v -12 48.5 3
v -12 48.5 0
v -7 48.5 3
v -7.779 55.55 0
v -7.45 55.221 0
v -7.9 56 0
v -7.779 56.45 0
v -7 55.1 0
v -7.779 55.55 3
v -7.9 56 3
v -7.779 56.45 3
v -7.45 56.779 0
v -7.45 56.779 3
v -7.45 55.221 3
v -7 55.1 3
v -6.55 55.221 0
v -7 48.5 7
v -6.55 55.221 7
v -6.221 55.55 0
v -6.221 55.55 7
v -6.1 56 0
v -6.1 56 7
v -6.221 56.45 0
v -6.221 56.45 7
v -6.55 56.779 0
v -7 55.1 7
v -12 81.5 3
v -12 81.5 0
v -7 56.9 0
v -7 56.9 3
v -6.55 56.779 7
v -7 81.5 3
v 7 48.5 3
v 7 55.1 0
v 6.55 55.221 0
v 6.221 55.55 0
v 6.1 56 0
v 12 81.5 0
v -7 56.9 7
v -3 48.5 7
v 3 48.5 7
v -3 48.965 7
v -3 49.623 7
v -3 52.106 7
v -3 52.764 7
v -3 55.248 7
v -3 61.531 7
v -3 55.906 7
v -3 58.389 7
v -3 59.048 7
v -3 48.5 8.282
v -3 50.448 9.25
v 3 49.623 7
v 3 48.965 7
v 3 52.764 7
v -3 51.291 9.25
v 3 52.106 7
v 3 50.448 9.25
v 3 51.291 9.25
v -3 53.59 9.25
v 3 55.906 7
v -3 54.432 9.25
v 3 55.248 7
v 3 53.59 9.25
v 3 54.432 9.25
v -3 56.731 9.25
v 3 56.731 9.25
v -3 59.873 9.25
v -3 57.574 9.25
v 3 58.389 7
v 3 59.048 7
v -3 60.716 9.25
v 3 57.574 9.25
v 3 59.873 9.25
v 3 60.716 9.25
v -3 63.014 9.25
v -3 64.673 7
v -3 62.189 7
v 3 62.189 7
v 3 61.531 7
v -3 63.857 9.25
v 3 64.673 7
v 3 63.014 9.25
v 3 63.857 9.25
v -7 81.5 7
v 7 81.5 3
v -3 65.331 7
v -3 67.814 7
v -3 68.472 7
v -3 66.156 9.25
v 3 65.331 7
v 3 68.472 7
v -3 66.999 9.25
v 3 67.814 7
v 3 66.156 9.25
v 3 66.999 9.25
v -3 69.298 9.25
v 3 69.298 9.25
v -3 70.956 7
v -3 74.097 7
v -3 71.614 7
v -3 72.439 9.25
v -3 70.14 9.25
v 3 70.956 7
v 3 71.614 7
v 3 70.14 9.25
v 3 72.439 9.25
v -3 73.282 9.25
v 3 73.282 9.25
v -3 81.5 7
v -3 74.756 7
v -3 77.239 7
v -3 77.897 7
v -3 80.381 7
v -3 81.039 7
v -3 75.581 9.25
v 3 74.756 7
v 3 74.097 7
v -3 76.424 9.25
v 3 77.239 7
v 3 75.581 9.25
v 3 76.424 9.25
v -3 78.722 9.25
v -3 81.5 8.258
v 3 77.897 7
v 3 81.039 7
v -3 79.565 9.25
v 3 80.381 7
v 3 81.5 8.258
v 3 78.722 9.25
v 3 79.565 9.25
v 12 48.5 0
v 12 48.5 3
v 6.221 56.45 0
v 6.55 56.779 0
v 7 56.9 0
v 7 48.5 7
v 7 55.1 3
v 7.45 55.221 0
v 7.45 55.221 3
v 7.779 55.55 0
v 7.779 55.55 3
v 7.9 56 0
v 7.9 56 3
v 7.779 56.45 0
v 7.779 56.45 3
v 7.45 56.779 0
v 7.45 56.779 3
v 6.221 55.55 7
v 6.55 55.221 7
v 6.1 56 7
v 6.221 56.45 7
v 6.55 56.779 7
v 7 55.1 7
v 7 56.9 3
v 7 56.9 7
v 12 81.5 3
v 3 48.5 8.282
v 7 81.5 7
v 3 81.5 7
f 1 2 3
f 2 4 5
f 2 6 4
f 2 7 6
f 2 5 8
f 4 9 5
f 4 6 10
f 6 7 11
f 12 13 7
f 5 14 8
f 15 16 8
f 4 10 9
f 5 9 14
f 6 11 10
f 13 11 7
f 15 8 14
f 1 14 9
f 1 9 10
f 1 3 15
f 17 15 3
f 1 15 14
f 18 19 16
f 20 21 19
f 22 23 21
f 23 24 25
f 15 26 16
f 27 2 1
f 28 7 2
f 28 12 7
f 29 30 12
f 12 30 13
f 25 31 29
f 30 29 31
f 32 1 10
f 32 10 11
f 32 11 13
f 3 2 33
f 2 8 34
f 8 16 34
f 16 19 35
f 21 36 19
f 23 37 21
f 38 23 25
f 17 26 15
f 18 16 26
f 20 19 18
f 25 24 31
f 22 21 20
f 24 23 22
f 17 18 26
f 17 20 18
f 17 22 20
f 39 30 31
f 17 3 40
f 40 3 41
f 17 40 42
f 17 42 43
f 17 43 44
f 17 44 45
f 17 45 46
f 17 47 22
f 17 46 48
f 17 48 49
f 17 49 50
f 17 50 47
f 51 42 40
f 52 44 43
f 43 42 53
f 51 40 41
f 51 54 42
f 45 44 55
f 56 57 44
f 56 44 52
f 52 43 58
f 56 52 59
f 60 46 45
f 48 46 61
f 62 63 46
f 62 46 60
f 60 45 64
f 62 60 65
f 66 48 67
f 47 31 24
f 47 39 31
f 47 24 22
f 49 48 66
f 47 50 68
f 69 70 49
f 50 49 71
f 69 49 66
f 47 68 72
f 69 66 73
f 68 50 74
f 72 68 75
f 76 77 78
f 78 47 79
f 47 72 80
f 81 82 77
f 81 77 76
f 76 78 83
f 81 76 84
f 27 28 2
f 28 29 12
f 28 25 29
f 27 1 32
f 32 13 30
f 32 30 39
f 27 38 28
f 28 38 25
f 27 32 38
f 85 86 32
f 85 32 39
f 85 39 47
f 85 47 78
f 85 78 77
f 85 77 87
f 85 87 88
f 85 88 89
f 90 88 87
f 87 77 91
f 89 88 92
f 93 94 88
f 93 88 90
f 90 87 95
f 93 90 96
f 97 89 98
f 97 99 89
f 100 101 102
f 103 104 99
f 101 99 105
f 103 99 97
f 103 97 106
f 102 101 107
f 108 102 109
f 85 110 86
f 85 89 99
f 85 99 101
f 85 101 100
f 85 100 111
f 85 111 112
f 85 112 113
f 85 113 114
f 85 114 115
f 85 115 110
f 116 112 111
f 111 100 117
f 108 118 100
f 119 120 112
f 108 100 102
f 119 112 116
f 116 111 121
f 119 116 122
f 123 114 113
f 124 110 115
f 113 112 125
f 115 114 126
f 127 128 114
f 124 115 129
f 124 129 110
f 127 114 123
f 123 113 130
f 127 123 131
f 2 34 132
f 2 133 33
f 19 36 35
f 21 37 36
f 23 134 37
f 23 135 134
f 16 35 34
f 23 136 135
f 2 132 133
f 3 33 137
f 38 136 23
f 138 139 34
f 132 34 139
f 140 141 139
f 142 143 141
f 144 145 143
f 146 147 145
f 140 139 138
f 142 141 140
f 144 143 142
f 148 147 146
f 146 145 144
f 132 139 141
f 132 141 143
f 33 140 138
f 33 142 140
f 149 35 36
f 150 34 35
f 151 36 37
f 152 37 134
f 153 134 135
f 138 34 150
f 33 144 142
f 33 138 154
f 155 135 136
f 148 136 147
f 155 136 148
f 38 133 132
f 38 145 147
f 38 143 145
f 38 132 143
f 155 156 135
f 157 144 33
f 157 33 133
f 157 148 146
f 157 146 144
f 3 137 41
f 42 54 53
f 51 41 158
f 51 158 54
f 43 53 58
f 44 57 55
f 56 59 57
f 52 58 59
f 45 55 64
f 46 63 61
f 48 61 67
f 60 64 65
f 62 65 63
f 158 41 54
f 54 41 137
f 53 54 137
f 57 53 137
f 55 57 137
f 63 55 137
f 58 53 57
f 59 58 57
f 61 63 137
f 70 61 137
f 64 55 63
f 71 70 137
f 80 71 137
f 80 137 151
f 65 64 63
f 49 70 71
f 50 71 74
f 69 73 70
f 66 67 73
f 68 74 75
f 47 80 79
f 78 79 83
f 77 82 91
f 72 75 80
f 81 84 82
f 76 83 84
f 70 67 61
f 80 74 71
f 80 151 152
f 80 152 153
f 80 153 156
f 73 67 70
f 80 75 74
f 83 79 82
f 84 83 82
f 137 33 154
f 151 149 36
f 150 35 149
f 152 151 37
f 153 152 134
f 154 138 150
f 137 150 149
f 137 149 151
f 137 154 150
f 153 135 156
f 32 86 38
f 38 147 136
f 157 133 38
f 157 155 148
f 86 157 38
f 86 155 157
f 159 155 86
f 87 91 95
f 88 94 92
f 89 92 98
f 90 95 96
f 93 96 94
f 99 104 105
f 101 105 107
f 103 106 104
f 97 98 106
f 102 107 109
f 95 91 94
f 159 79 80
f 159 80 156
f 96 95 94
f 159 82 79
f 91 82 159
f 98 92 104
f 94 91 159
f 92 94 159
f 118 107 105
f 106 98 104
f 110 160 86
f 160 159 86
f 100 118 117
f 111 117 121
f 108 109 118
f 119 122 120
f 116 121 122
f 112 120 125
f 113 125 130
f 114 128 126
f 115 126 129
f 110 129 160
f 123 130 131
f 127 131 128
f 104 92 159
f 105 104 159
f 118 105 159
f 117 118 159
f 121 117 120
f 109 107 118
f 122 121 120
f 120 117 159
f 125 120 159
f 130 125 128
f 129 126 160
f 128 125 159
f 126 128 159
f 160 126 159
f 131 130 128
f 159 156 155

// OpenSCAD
// file: lib/lib.scad
// Shared helpers. Include AFTER params.scad (needs TOL, M3_* etc.).
$fa = 4; $fs = 0.5;

module rrect(size, r) {            // 2D rounded rectangle, centred
    r2 = min(r, min(size[0], size[1]) / 2 - 0.001);
    offset(r = r2) square([size[0] - 2 * r2, size[1] - 2 * r2], center = true);
}
module rbox(size, r, center_xy = true) {   // box with rounded vertical edges
    translate(center_xy ? [0, 0, 0] : [size[0] / 2, size[1] / 2, 0])
        linear_extrude(size[2]) rrect([size[0], size[1]], r);
}
module rbox_at(x0, x1, y0, y1, z0, z1, r = 0.01) {
    translate([(x0 + x1) / 2, (y0 + y1) / 2, z0]) rbox([x1 - x0, y1 - y0, z1 - z0], r);
}
module box_at(x0, x1, y0, y1, z0, z1) { translate([x0, y0, z0]) cube([x1 - x0, y1 - y0, z1 - z0]); }

module ring(ro, ri, h) { difference() { cylinder(r = ro, h = h); translate([0, 0, -1]) cylinder(r = ri, h = h + 2); } }
module ring_sector(ro, ri, h, a0, a1) {
    intersection() {
        ring(ro, ri, h);
        linear_extrude(h) polygon(concat([[0, 0]], [for (a = [a0 : (a1 - a0) / 24 : a1]) 2 * ro * [cos(a), sin(a)]]));
    }
}
// teardrop hole along an axis lying horizontal (axis = Y after rotation), printable w/o support
module teardrop2d(d) { union() { circle(d = d); rotate(45) square(d / 2); } }
// vertical heat-set insert hole, opening at z=0 going +z (depth l)
module insert_hole(l = M3_INSERT_L) { translate([0, 0, -EPS]) cylinder(d = M3_INSERT_D, h = l + EPS); }
module m3_clear(l) { translate([0, 0, -EPS]) cylinder(d = M3_CLEAR, h = l + 2 * EPS); }
module m3_csk(l) {  // countersunk clearance from z=0 upward, head at z=0 side
    translate([0, 0, -EPS]) { cylinder(d = M3_CLEAR, h = l + 2 * EPS); cylinder(d1 = 6.4, d2 = M3_CLEAR, h = 1.7); }
}
module card2d() { rrect([CARD_L, CARD_W], CARD_R); }
module card_at(cy, z) { translate([0, cy, z]) linear_extrude(CARD_T) card2d(); }

// ---- gears ----
function _inv(a) = tan(a) - a * PI_ / 180;           // involute function, a in deg
function _invpt(rb, r, ang0, s) = let(al = acos(rb / r), th = ang0 - s * (_inv(al) * 180 / PI_)) [r * cos(th), r * sin(th)];
module involute_gear2d(m, z, pa = 20, clearance = 0.05) {
    rp = m * z / 2; rb = rp * cos(pa); ra = rp + m - clearance; rf = rp - 1.25 * m;
    half = 90 / z + _inv(pa) * 180 / PI_;            // tooth half-angle at base (deg)
    n = 8;
    rs = [for (i = [0 : n]) max(rb, rf) + (ra - max(rb, rf)) * i / n];
    union() {
        circle(r = rf, $fn = z * 4);
        for (k = [0 : z - 1]) rotate(k * 360 / z) polygon(concat(
            [[rf * cos(-half), rf * sin(-half)]],
            [for (r = rs) let(p = _invpt(rb, r, half, 1)) [p[0], -p[1]]],
            [for (i = [n : -1 : 0]) _invpt(rb, rs[i], half, 1)],
            [[rf * cos(half), rf * sin(half)]]));
    }
}
// straight gear rack (2D in XY: teeth along +x, pointing -y, pitch line at y=0)
module gear_rack2d(m, len, back = 3) {
    p = PI_ * m; ad = m; de = 1.25 * m; t = tan(20);
    n = ceil(len / p) + 1;
    intersection() {
        union() {
            translate([0, de]) square([len, back]);
            for (i = [0 : n]) translate([i * p - p / 4, 0]) polygon([
                [-(p / 4 + de * t), de + 0.01], [p / 4 + de * t + 0.01, de + 0.01],
                [p / 4 - ad * t, -ad], [-(p / 4 - ad * t), -ad] ]);
        }
        translate([0, -ad - 1]) square([len, ad + de + back + 2]);
    }
}
// GT2 belt-tooth profile ring (teeth outward), 2D
module gt2_ring2d(n, r_land, ri) {
    union() {
        difference() { circle(r = r_land + 0.01, $fn = n * 2); circle(r = ri, $fn = n * 2); }
        for (k = [0 : n - 1]) rotate(k * 360 / n)
            translate([r_land, 0]) hull() { translate([-0.2, 0]) square([0.2, 1.0], center = true); translate([0.25, 0]) circle(r = 0.5, $fn = 12); }
    }
}
// main file
// Pusher carrier: T-profile slider with an m1 gear rack underneath; the steel blade is
// screwed (2 x M2) on top. Print: upside down (flange on bed), teeth up, no supports.
include <params.scad>
include <lib/lib.scad>
e = Z_EJECT;
SL_Y0 = CARRIER_Y0 - CARRIER_L;
module pusher_slider(push = 0) translate([0, push, 0]) difference() {
    union() {
        box_at(-12, 12, SL_Y0, CARRIER_Y0, e - 3.3, CARRIER_TOP);
        box_at(-7, 7, SL_Y0, CARRIER_Y0, CARRIER_Z0, e - 3.3 + EPS);
        // gear rack: 2D x -> world Y, 2D y -> world Z (teeth point down)
        translate([-PIN_W / 2, SL_Y0, RACKG_PITCH_Z]) multmatrix([[0, 0, 1, 0], [1, 0, 0, 0], [0, 1, 0, 0], [0, 0, 0, 1]]) linear_extrude(PIN_W) gear_rack2d(PIN_M, CARRIER_L, 0.01);
    }
    for (x = [-7, 7]) translate([x, -BLADE_L + BLADE_TIP_Y + 7.5 + 0, e - 8]) cylinder(d = 1.8, h = 20);
}
module pusher_slider_print() translate([0, 0, CARRIER_TOP]) rotate([180, 0, 0]) pusher_slider();
pusher_slider_print();
